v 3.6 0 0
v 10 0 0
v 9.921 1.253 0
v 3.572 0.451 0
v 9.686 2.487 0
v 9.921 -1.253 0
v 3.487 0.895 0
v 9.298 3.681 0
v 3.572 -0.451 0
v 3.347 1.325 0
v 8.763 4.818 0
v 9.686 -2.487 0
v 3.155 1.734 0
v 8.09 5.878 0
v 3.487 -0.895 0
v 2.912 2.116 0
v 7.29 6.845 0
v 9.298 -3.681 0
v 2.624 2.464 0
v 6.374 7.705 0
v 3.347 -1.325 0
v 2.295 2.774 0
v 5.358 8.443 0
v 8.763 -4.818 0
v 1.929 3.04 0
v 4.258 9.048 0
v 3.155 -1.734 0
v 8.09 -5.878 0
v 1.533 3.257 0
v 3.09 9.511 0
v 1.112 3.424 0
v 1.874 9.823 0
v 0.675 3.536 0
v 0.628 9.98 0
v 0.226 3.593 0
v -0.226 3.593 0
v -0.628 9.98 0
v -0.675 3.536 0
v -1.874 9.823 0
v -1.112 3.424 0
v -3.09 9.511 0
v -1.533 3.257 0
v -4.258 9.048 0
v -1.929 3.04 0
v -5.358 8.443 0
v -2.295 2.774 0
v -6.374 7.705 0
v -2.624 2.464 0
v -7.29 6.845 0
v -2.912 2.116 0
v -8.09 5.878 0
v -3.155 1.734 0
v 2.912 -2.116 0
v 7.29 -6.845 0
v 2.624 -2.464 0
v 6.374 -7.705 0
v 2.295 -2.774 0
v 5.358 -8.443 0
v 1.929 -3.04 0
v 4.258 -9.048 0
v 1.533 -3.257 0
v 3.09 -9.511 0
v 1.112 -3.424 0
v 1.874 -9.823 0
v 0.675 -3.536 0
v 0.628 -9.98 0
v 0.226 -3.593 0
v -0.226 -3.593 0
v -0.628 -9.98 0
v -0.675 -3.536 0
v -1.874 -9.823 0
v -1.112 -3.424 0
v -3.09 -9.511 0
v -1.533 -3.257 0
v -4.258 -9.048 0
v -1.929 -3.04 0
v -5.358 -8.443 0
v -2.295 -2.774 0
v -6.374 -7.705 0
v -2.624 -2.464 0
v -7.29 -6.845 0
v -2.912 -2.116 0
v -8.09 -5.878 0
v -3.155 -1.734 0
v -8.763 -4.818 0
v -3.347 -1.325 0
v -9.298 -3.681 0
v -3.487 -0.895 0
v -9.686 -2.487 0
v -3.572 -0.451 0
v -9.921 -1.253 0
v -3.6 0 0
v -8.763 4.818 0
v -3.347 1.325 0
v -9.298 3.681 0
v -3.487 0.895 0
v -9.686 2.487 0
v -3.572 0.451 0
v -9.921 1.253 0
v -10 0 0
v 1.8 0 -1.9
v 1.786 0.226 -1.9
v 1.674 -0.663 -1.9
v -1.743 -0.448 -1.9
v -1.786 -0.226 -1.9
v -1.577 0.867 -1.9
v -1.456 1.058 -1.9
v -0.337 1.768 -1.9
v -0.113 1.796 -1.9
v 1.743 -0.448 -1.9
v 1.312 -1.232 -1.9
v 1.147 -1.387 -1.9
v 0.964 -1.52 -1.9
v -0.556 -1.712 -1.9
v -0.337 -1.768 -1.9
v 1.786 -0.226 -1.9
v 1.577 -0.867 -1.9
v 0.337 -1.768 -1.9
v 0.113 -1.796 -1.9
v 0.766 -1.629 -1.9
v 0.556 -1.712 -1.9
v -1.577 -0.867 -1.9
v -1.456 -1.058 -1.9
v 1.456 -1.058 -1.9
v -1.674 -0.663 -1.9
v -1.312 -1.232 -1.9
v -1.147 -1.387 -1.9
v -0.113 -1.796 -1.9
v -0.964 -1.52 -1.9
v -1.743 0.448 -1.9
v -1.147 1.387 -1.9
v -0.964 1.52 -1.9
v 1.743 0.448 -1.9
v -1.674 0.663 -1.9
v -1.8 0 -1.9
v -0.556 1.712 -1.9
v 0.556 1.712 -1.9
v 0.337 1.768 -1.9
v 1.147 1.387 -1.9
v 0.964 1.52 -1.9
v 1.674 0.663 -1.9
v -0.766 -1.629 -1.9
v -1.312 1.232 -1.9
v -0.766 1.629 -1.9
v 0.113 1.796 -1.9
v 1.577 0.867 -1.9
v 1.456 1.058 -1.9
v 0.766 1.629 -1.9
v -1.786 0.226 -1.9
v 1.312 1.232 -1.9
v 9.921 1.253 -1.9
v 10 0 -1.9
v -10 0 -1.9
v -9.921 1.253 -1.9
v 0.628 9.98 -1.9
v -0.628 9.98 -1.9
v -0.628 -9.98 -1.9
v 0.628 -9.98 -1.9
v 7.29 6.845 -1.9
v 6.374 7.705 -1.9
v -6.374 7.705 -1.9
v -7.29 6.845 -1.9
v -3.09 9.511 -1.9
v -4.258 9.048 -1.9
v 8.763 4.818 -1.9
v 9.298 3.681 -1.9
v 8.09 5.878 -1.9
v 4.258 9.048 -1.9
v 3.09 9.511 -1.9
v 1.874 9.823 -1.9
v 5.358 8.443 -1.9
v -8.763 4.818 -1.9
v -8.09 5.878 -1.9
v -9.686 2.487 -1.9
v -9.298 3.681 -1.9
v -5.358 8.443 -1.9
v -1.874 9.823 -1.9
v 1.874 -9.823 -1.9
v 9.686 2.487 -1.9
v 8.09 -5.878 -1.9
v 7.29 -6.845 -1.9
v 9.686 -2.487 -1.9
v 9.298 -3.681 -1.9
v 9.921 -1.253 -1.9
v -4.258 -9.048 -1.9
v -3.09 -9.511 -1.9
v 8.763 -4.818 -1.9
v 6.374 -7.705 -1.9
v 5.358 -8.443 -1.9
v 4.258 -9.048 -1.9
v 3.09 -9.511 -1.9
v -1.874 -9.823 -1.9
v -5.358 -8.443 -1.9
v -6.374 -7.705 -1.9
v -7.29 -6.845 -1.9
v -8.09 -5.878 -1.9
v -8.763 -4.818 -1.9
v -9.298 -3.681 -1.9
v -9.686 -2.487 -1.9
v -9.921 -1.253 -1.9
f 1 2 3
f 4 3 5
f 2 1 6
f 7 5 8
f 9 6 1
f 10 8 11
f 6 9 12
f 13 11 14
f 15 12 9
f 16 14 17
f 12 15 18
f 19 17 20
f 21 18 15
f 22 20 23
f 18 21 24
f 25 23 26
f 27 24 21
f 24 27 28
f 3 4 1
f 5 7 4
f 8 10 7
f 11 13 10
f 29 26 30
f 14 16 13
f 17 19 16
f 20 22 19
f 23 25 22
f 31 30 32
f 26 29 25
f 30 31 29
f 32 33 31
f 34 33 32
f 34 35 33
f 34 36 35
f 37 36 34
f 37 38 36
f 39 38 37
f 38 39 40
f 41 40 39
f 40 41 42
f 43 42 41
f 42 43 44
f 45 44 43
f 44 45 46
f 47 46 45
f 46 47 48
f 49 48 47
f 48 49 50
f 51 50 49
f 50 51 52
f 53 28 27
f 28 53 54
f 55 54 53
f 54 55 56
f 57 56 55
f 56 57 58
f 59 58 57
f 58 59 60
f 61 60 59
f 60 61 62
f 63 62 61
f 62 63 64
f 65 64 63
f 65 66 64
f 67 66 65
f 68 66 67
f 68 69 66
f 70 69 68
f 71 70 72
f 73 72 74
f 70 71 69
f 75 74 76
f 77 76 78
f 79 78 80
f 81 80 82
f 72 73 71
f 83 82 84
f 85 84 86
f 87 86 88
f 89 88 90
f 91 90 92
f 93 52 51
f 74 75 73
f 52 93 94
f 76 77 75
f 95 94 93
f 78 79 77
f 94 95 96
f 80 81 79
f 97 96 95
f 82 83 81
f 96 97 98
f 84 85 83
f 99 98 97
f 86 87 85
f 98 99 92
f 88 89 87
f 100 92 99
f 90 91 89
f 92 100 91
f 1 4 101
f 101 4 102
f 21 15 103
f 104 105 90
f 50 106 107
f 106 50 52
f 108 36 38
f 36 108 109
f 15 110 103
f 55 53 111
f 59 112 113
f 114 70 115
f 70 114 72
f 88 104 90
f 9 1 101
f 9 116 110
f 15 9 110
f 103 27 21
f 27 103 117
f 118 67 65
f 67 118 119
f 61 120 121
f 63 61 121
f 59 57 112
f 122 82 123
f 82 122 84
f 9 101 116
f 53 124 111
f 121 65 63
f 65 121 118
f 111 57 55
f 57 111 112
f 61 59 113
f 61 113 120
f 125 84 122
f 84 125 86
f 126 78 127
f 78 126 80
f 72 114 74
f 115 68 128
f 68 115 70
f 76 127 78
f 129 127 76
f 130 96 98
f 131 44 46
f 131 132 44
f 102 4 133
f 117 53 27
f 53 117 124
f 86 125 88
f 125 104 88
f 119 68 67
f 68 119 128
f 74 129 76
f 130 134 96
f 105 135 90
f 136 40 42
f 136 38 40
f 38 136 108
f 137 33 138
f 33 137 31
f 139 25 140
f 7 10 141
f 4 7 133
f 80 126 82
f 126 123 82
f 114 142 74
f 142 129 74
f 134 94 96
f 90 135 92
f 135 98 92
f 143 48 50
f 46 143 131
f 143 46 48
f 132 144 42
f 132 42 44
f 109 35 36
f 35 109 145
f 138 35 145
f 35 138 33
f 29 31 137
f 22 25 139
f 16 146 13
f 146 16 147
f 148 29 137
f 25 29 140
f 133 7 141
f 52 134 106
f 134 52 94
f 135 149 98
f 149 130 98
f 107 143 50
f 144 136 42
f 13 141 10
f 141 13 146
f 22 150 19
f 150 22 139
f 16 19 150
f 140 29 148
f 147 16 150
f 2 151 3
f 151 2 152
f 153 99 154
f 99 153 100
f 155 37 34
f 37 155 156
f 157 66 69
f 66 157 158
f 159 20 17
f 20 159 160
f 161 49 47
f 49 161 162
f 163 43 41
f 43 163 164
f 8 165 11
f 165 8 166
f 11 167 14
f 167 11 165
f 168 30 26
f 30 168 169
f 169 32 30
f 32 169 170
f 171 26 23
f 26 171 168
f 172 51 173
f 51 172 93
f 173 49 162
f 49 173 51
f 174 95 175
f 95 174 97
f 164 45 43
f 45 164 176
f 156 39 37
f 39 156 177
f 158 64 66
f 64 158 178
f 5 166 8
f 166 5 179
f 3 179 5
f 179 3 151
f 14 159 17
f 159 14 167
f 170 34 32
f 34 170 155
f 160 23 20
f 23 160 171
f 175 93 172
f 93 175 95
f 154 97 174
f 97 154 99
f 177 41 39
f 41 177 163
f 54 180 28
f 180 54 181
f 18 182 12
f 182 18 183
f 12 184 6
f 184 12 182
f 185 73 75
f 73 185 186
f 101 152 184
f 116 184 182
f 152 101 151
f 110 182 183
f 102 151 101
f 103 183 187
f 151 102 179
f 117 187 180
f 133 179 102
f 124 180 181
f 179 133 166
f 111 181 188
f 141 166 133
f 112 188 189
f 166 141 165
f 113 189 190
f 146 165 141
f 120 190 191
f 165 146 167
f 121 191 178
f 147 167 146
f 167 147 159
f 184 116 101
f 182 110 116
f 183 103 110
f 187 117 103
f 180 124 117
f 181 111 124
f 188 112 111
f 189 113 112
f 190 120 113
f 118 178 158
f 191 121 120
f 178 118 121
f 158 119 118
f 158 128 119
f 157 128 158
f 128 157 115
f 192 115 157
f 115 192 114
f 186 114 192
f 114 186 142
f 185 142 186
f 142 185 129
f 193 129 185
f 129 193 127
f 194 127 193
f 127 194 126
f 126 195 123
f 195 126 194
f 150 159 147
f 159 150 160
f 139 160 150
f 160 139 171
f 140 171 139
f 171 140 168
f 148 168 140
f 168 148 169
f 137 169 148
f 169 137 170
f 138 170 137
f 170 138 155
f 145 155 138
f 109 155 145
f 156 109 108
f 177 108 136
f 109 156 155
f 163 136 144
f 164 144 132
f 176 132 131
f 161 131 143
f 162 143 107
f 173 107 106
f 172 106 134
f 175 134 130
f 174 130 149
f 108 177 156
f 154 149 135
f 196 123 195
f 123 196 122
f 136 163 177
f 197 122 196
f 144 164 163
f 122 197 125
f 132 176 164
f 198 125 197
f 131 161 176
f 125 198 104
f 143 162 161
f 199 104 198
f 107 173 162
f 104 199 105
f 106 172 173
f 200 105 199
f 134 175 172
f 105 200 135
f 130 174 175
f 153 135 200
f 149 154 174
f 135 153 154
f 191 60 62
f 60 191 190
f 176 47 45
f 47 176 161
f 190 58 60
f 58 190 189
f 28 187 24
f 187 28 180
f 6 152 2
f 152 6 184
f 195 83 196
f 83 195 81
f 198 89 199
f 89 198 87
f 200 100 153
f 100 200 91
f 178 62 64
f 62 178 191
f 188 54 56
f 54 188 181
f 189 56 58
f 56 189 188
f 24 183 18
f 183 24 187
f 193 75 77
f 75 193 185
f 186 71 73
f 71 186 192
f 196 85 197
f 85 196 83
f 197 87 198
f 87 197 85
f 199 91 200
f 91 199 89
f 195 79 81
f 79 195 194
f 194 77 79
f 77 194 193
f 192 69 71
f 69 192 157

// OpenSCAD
$fn = 50;

difference() {
	union() {
		translate(v = [0, 0, -1.9]) {
			cylinder(h = 1.9, r = 10.0);
		}
	}
	union() {
		translate(v = [0, 0, 0]) {
			rotate(a = [0, 0, 0]) {
				difference() {
					union() {
						translate(v = [0, 0, -4.9]) {
							cylinder(h = 4.9, r = 1.5);
						}
						translate(v = [0, 0, -1.9]) {
							cylinder(h = 1.9, r1 = 1.8, r2 = 3.6);
						}
						translate(v = [0, 0, -4.9]) {
							cylinder(h = 4.9, r = 1.8);
						}
						translate(v = [0, 0, -4.9]) {
							cylinder(h = 4.9, r = 1.5);
						}
					}
					union();
				}
			}
		}
	}
}
